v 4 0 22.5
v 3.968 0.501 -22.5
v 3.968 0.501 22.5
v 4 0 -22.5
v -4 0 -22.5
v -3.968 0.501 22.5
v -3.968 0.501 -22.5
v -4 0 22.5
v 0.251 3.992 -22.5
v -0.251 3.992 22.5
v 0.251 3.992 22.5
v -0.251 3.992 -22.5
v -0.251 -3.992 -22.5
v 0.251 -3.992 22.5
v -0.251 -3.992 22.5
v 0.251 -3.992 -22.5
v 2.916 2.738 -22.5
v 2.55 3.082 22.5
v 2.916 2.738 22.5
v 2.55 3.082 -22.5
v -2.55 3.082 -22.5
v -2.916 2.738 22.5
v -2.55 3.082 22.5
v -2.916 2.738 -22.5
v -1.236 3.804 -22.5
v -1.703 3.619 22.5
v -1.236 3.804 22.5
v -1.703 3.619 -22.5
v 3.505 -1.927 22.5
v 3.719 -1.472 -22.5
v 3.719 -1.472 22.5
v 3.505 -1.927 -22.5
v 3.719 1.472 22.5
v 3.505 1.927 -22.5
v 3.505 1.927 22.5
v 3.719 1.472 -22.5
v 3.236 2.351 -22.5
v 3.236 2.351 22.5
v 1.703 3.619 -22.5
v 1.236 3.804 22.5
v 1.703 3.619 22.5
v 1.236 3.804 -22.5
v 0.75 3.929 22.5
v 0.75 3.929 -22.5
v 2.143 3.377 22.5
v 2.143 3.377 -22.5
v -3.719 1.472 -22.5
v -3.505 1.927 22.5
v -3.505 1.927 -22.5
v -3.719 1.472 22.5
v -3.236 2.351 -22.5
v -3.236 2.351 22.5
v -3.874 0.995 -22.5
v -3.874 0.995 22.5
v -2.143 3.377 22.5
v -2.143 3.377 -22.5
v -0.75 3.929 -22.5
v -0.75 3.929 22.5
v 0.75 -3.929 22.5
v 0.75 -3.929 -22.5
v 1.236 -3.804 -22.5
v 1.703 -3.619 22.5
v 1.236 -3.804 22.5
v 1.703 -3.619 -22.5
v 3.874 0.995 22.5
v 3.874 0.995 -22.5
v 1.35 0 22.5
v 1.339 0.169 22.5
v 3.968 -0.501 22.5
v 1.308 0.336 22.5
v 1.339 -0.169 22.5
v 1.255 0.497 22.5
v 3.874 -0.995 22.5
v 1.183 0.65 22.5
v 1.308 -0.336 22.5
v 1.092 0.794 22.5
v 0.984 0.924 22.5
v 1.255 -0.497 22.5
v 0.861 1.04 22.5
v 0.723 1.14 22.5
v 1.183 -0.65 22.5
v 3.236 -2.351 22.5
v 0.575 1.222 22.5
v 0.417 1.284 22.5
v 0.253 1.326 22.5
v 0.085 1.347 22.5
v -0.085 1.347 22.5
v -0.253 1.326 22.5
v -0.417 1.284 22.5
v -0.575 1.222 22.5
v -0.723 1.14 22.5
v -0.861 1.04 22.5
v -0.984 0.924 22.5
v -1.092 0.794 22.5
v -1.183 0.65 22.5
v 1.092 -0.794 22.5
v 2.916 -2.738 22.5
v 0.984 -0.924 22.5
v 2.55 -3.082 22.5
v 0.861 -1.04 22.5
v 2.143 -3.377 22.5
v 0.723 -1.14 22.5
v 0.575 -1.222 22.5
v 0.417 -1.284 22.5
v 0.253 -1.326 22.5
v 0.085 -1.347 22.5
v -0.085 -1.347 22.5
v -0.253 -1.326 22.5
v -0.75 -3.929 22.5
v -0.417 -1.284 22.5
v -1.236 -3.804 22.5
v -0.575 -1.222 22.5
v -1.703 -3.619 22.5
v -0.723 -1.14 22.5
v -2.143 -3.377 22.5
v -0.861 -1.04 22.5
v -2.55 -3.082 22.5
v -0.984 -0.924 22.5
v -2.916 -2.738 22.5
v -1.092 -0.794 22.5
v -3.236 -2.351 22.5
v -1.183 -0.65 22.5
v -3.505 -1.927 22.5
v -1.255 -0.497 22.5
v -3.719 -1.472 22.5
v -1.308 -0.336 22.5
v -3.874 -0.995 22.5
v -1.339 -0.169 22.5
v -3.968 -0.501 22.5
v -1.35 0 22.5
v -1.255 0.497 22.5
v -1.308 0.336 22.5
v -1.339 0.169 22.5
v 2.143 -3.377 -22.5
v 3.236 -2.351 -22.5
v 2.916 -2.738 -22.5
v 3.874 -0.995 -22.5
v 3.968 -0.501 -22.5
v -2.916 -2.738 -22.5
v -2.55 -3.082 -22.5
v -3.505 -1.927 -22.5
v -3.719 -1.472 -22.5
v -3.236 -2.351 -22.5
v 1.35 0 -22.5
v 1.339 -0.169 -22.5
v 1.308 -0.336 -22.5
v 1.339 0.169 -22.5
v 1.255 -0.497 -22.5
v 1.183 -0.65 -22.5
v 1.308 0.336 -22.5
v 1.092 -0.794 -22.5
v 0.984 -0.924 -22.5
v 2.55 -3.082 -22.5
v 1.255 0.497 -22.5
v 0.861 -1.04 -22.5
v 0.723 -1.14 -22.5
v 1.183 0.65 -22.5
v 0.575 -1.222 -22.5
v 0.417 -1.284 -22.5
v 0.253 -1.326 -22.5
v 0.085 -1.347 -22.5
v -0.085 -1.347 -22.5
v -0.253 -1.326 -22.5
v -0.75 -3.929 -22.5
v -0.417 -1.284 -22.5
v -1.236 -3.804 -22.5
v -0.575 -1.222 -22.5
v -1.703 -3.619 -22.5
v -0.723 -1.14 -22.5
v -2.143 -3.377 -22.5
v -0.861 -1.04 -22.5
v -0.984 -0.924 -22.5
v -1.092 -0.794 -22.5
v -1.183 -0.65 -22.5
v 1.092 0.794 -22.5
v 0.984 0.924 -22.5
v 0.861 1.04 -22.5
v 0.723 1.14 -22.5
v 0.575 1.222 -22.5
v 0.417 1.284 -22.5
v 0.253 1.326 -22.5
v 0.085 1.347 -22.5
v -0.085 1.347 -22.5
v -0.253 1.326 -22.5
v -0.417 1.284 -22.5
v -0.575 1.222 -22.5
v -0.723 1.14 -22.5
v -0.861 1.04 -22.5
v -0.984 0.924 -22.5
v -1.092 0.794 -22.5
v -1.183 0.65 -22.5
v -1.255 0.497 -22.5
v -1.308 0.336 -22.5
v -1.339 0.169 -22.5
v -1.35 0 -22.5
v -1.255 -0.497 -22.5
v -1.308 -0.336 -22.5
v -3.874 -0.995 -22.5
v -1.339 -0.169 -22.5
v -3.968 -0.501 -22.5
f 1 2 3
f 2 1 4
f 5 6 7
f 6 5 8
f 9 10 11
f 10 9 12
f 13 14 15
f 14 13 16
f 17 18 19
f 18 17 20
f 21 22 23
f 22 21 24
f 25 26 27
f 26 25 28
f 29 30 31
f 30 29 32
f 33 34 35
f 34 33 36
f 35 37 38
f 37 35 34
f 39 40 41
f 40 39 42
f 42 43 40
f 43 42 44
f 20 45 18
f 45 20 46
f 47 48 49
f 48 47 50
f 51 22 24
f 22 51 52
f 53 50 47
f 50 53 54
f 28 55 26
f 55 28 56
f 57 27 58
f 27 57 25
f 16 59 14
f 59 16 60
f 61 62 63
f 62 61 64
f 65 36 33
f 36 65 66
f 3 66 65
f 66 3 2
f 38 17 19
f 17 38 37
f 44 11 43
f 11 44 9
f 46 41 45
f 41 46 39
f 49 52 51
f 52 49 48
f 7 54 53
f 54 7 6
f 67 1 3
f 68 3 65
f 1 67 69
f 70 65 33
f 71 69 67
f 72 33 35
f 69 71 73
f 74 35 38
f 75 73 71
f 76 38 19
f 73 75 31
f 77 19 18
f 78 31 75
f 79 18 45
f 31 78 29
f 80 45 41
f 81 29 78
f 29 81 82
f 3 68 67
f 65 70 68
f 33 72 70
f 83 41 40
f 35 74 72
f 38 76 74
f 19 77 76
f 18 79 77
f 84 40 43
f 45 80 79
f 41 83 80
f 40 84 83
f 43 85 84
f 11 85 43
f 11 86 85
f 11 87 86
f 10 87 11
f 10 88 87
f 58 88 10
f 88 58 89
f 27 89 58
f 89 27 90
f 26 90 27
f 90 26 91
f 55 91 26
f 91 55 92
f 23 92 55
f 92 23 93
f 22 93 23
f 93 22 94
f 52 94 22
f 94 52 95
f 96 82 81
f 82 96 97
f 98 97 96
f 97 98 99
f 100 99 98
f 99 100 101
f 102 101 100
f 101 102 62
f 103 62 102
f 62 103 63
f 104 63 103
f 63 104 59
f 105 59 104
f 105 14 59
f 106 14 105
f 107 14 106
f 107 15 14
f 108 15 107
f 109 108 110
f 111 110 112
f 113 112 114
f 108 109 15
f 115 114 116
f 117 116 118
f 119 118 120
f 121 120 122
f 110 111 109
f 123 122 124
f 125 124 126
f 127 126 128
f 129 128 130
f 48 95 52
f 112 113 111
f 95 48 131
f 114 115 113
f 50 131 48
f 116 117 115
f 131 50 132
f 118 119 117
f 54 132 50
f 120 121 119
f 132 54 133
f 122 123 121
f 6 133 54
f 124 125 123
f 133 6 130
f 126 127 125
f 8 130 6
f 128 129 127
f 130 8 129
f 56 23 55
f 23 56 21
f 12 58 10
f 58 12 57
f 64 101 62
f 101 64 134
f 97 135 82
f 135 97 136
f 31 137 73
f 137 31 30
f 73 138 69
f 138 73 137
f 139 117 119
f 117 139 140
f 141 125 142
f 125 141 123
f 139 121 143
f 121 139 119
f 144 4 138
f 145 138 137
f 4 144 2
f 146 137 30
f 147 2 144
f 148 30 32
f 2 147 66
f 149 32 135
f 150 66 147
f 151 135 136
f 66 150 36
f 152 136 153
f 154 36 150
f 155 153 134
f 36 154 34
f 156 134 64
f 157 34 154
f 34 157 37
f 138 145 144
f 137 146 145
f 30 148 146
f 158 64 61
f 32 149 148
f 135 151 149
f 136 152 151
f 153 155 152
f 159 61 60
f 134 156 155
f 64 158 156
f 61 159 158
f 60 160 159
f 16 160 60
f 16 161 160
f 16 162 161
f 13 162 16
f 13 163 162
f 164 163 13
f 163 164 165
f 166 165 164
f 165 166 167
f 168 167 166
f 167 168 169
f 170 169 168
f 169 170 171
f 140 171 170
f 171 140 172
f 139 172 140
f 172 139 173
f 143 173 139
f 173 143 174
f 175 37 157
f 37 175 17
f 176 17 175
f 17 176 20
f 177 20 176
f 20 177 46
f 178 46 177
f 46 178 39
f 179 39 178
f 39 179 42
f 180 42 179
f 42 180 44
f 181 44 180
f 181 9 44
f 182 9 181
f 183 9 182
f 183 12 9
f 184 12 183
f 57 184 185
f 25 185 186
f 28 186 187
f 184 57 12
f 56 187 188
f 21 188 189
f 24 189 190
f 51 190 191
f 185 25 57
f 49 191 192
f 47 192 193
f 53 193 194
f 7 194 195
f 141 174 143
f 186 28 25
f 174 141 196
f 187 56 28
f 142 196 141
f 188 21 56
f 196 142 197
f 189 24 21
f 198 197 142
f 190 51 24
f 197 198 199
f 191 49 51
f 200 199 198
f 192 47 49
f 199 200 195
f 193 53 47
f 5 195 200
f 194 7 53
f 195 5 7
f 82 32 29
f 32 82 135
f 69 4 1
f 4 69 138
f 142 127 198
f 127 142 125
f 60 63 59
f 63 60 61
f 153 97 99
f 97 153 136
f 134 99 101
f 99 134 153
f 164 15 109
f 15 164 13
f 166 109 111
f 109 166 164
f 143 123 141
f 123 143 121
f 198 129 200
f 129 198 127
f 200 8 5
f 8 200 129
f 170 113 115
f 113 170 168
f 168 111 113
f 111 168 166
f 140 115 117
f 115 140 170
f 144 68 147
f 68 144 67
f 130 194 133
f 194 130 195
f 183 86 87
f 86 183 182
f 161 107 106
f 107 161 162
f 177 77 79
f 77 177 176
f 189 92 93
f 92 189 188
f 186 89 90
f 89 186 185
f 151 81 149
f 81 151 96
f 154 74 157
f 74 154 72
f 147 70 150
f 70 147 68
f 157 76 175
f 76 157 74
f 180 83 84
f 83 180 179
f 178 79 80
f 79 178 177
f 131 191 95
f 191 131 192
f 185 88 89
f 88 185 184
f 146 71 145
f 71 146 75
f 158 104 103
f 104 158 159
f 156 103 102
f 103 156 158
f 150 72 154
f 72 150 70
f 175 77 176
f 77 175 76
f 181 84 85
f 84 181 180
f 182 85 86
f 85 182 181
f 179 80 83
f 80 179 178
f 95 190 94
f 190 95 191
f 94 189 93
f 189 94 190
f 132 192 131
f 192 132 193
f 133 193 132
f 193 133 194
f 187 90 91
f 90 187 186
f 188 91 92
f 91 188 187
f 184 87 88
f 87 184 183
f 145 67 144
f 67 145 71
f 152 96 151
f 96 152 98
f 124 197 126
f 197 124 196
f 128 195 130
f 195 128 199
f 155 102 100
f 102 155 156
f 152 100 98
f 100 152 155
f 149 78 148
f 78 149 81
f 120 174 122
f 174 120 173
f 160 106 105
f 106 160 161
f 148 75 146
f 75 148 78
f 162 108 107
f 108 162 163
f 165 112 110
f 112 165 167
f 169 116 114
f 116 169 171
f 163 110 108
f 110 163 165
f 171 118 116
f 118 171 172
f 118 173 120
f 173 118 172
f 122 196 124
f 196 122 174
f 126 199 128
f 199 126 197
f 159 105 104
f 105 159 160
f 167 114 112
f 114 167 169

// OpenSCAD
$fn = 50;


difference() {
	union() {
		translate(v = [0, 0, -22.5000000000]) {
			cylinder(h = 45, r = 4.0000000000);
		}
	}
	union() {
		translate(v = [0, 0, -100.0000000000]) {
			cylinder(h = 200, r = 1.3500000000);
		}
	}
}
